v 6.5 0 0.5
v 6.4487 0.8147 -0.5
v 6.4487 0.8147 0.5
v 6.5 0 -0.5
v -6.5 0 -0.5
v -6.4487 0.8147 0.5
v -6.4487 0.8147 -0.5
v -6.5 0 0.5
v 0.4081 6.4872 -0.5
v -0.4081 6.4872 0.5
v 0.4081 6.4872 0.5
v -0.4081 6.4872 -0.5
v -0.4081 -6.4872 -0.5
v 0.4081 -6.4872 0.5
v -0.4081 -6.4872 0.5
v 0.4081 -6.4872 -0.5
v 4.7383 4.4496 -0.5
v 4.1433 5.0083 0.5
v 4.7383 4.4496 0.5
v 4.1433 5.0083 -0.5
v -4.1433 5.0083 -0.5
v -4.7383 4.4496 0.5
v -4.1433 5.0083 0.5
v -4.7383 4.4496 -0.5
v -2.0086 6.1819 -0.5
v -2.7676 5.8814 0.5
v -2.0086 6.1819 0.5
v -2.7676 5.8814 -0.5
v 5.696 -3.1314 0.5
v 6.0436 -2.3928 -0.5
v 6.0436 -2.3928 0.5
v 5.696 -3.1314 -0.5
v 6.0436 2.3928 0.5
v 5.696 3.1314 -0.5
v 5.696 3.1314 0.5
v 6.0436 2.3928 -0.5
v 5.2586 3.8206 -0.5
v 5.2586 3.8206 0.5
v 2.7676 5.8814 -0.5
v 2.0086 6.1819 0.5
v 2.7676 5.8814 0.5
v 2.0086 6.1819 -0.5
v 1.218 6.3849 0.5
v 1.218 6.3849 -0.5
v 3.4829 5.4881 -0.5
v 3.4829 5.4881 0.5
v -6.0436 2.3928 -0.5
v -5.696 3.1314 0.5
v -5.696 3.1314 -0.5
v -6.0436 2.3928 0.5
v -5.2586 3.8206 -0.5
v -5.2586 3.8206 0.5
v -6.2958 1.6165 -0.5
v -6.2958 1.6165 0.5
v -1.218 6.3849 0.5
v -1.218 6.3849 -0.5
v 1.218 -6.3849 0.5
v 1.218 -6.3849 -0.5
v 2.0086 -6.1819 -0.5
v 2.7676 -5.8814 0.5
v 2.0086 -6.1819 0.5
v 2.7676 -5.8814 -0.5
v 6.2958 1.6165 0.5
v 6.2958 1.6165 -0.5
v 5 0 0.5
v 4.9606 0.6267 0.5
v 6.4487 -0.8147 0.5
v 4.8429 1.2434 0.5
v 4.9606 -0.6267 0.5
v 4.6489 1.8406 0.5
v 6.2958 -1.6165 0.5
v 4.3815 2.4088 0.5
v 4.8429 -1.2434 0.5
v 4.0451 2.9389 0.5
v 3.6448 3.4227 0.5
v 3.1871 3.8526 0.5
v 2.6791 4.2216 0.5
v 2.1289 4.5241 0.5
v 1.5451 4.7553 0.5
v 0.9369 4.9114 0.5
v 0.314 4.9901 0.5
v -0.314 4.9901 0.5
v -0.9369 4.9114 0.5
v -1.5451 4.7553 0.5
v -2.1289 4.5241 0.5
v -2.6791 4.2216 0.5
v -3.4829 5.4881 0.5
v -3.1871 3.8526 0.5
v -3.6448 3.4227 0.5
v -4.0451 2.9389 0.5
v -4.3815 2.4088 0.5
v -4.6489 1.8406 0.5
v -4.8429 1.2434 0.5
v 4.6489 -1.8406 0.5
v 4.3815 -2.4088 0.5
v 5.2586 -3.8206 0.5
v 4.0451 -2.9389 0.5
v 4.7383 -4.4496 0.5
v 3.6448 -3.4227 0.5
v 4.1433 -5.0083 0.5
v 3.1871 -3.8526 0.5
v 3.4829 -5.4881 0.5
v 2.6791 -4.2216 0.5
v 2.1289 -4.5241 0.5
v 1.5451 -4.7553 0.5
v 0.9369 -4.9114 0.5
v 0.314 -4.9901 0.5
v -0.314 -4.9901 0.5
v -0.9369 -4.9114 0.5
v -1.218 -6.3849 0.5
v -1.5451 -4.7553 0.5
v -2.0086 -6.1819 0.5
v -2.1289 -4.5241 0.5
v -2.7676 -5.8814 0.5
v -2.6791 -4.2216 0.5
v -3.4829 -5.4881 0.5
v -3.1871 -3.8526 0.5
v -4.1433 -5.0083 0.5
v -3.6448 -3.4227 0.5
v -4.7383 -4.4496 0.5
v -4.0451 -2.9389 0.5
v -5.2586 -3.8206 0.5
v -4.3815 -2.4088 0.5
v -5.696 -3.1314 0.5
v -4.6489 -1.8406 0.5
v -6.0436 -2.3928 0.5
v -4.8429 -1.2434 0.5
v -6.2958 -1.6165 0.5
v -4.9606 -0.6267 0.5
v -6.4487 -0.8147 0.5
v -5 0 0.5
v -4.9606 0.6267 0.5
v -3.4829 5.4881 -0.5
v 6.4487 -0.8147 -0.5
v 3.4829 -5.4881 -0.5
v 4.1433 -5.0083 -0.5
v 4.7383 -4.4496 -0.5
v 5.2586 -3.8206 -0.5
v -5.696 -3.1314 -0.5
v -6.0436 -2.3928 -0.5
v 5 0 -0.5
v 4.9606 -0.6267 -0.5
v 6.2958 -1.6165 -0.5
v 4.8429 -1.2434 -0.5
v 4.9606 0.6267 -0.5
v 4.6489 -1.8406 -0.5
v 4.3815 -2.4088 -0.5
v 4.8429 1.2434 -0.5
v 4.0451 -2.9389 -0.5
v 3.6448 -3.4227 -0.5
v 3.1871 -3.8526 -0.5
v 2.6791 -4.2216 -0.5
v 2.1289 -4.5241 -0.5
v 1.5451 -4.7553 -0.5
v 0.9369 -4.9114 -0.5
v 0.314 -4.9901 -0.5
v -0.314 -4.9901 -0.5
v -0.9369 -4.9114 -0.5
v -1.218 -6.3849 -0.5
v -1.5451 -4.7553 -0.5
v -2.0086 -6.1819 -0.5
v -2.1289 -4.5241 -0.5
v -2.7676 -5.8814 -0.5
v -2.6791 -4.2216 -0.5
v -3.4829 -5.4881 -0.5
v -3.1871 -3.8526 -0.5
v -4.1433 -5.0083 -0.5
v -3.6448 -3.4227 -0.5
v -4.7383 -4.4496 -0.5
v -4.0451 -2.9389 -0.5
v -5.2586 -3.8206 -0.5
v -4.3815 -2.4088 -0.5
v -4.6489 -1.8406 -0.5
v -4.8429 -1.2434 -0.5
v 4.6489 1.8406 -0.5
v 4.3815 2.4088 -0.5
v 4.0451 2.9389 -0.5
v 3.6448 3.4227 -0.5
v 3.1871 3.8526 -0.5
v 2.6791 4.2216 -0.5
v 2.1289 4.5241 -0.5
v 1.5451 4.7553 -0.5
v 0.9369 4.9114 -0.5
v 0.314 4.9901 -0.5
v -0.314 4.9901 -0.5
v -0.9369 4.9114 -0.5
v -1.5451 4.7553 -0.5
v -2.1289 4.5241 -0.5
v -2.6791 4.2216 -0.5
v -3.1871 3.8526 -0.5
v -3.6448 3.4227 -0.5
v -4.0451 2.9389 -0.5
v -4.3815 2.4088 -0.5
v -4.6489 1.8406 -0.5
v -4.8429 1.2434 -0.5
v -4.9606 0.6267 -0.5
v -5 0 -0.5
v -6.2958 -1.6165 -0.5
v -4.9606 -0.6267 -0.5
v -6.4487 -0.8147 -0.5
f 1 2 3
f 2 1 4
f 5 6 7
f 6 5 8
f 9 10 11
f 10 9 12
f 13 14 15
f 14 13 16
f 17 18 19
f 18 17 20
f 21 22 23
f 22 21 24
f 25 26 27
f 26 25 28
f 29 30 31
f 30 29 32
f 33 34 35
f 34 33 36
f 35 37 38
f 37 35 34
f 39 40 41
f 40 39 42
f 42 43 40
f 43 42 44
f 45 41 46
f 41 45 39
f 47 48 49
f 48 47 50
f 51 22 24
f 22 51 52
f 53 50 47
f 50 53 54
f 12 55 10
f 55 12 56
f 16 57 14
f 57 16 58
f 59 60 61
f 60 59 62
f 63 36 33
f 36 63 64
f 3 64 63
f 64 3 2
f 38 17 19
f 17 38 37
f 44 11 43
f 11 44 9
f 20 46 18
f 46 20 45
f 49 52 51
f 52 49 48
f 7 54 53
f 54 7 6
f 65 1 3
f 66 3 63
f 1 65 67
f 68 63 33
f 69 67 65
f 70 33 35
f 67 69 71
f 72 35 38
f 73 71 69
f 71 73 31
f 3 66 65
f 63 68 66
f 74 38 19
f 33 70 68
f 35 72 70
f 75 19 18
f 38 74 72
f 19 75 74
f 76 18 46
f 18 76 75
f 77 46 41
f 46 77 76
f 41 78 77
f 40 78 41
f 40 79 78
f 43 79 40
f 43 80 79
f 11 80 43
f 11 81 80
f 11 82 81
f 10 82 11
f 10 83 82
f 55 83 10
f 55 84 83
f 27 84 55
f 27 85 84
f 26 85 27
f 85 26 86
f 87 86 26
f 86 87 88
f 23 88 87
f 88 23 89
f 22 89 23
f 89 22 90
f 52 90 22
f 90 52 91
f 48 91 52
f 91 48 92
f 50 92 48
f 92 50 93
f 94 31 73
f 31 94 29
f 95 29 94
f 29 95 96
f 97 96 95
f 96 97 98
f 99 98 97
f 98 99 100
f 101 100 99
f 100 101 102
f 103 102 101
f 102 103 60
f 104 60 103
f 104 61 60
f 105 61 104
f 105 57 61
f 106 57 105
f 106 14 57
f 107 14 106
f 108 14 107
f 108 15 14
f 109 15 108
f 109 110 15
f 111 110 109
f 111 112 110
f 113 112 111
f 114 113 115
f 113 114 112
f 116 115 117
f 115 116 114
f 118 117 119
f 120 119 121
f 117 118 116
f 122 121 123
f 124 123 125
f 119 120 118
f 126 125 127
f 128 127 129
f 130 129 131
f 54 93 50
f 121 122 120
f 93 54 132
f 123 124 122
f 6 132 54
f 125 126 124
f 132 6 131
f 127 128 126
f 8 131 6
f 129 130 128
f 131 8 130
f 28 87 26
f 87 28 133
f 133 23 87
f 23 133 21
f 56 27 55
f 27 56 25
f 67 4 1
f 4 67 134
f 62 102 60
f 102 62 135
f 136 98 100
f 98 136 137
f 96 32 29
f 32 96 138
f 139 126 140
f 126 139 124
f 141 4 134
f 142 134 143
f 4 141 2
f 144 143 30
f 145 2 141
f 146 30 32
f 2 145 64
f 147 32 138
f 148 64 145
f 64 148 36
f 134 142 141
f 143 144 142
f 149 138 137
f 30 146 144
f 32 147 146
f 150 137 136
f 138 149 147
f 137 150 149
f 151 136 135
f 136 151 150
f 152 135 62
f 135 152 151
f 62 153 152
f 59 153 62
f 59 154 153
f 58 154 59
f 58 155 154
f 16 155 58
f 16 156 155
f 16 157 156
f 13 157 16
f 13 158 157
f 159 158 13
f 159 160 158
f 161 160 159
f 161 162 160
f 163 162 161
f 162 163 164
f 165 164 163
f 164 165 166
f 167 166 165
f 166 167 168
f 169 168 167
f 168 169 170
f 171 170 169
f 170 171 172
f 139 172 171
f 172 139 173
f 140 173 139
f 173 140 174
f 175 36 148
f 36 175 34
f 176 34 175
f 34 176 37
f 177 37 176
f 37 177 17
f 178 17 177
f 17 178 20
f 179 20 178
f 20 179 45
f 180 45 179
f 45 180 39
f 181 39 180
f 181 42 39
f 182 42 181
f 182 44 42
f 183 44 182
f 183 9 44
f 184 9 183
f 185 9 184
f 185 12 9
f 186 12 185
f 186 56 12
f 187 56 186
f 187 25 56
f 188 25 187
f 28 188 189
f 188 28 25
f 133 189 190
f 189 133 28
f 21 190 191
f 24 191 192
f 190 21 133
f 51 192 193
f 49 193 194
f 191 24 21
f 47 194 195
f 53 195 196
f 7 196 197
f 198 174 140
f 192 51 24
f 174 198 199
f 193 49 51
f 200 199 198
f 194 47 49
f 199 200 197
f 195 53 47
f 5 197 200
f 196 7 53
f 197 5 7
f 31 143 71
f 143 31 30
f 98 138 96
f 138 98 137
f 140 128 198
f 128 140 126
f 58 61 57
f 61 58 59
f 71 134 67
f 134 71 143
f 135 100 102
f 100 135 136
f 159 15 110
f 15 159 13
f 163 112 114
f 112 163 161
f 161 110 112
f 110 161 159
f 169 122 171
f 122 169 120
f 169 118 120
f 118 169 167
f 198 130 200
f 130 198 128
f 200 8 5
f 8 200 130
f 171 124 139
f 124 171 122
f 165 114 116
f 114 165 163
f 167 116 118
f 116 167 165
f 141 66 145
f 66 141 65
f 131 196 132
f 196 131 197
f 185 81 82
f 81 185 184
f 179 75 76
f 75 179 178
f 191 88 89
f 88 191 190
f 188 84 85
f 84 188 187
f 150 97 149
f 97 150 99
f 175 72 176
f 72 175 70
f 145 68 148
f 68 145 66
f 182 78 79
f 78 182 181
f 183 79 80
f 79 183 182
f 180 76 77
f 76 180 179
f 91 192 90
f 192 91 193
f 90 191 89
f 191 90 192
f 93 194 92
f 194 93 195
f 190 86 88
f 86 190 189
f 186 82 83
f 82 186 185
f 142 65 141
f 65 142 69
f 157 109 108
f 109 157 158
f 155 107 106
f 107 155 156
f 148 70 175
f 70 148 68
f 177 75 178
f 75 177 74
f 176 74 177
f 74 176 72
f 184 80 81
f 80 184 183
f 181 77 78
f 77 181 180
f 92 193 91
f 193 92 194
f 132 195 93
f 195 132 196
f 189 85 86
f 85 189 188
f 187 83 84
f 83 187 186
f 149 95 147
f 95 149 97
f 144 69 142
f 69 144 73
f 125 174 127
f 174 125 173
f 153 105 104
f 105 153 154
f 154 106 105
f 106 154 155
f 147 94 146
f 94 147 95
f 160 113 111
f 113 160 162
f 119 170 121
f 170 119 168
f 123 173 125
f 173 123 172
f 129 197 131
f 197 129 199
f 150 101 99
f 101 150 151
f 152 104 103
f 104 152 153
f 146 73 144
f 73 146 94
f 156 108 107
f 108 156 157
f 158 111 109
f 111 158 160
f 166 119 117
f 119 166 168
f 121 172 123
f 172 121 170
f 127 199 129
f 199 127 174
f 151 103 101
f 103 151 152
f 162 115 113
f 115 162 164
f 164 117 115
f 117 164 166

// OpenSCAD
$fn = 50;


difference() {
	union() {
		translate(v = [0, 0, -0.5000000000]) {
			cylinder(h = 1, r = 6.5000000000);
		}
	}
	union() {
		translate(v = [0, 0, -100.0000000000]) {
			cylinder(h = 200, r = 5.0000000000);
		}
	}
}
